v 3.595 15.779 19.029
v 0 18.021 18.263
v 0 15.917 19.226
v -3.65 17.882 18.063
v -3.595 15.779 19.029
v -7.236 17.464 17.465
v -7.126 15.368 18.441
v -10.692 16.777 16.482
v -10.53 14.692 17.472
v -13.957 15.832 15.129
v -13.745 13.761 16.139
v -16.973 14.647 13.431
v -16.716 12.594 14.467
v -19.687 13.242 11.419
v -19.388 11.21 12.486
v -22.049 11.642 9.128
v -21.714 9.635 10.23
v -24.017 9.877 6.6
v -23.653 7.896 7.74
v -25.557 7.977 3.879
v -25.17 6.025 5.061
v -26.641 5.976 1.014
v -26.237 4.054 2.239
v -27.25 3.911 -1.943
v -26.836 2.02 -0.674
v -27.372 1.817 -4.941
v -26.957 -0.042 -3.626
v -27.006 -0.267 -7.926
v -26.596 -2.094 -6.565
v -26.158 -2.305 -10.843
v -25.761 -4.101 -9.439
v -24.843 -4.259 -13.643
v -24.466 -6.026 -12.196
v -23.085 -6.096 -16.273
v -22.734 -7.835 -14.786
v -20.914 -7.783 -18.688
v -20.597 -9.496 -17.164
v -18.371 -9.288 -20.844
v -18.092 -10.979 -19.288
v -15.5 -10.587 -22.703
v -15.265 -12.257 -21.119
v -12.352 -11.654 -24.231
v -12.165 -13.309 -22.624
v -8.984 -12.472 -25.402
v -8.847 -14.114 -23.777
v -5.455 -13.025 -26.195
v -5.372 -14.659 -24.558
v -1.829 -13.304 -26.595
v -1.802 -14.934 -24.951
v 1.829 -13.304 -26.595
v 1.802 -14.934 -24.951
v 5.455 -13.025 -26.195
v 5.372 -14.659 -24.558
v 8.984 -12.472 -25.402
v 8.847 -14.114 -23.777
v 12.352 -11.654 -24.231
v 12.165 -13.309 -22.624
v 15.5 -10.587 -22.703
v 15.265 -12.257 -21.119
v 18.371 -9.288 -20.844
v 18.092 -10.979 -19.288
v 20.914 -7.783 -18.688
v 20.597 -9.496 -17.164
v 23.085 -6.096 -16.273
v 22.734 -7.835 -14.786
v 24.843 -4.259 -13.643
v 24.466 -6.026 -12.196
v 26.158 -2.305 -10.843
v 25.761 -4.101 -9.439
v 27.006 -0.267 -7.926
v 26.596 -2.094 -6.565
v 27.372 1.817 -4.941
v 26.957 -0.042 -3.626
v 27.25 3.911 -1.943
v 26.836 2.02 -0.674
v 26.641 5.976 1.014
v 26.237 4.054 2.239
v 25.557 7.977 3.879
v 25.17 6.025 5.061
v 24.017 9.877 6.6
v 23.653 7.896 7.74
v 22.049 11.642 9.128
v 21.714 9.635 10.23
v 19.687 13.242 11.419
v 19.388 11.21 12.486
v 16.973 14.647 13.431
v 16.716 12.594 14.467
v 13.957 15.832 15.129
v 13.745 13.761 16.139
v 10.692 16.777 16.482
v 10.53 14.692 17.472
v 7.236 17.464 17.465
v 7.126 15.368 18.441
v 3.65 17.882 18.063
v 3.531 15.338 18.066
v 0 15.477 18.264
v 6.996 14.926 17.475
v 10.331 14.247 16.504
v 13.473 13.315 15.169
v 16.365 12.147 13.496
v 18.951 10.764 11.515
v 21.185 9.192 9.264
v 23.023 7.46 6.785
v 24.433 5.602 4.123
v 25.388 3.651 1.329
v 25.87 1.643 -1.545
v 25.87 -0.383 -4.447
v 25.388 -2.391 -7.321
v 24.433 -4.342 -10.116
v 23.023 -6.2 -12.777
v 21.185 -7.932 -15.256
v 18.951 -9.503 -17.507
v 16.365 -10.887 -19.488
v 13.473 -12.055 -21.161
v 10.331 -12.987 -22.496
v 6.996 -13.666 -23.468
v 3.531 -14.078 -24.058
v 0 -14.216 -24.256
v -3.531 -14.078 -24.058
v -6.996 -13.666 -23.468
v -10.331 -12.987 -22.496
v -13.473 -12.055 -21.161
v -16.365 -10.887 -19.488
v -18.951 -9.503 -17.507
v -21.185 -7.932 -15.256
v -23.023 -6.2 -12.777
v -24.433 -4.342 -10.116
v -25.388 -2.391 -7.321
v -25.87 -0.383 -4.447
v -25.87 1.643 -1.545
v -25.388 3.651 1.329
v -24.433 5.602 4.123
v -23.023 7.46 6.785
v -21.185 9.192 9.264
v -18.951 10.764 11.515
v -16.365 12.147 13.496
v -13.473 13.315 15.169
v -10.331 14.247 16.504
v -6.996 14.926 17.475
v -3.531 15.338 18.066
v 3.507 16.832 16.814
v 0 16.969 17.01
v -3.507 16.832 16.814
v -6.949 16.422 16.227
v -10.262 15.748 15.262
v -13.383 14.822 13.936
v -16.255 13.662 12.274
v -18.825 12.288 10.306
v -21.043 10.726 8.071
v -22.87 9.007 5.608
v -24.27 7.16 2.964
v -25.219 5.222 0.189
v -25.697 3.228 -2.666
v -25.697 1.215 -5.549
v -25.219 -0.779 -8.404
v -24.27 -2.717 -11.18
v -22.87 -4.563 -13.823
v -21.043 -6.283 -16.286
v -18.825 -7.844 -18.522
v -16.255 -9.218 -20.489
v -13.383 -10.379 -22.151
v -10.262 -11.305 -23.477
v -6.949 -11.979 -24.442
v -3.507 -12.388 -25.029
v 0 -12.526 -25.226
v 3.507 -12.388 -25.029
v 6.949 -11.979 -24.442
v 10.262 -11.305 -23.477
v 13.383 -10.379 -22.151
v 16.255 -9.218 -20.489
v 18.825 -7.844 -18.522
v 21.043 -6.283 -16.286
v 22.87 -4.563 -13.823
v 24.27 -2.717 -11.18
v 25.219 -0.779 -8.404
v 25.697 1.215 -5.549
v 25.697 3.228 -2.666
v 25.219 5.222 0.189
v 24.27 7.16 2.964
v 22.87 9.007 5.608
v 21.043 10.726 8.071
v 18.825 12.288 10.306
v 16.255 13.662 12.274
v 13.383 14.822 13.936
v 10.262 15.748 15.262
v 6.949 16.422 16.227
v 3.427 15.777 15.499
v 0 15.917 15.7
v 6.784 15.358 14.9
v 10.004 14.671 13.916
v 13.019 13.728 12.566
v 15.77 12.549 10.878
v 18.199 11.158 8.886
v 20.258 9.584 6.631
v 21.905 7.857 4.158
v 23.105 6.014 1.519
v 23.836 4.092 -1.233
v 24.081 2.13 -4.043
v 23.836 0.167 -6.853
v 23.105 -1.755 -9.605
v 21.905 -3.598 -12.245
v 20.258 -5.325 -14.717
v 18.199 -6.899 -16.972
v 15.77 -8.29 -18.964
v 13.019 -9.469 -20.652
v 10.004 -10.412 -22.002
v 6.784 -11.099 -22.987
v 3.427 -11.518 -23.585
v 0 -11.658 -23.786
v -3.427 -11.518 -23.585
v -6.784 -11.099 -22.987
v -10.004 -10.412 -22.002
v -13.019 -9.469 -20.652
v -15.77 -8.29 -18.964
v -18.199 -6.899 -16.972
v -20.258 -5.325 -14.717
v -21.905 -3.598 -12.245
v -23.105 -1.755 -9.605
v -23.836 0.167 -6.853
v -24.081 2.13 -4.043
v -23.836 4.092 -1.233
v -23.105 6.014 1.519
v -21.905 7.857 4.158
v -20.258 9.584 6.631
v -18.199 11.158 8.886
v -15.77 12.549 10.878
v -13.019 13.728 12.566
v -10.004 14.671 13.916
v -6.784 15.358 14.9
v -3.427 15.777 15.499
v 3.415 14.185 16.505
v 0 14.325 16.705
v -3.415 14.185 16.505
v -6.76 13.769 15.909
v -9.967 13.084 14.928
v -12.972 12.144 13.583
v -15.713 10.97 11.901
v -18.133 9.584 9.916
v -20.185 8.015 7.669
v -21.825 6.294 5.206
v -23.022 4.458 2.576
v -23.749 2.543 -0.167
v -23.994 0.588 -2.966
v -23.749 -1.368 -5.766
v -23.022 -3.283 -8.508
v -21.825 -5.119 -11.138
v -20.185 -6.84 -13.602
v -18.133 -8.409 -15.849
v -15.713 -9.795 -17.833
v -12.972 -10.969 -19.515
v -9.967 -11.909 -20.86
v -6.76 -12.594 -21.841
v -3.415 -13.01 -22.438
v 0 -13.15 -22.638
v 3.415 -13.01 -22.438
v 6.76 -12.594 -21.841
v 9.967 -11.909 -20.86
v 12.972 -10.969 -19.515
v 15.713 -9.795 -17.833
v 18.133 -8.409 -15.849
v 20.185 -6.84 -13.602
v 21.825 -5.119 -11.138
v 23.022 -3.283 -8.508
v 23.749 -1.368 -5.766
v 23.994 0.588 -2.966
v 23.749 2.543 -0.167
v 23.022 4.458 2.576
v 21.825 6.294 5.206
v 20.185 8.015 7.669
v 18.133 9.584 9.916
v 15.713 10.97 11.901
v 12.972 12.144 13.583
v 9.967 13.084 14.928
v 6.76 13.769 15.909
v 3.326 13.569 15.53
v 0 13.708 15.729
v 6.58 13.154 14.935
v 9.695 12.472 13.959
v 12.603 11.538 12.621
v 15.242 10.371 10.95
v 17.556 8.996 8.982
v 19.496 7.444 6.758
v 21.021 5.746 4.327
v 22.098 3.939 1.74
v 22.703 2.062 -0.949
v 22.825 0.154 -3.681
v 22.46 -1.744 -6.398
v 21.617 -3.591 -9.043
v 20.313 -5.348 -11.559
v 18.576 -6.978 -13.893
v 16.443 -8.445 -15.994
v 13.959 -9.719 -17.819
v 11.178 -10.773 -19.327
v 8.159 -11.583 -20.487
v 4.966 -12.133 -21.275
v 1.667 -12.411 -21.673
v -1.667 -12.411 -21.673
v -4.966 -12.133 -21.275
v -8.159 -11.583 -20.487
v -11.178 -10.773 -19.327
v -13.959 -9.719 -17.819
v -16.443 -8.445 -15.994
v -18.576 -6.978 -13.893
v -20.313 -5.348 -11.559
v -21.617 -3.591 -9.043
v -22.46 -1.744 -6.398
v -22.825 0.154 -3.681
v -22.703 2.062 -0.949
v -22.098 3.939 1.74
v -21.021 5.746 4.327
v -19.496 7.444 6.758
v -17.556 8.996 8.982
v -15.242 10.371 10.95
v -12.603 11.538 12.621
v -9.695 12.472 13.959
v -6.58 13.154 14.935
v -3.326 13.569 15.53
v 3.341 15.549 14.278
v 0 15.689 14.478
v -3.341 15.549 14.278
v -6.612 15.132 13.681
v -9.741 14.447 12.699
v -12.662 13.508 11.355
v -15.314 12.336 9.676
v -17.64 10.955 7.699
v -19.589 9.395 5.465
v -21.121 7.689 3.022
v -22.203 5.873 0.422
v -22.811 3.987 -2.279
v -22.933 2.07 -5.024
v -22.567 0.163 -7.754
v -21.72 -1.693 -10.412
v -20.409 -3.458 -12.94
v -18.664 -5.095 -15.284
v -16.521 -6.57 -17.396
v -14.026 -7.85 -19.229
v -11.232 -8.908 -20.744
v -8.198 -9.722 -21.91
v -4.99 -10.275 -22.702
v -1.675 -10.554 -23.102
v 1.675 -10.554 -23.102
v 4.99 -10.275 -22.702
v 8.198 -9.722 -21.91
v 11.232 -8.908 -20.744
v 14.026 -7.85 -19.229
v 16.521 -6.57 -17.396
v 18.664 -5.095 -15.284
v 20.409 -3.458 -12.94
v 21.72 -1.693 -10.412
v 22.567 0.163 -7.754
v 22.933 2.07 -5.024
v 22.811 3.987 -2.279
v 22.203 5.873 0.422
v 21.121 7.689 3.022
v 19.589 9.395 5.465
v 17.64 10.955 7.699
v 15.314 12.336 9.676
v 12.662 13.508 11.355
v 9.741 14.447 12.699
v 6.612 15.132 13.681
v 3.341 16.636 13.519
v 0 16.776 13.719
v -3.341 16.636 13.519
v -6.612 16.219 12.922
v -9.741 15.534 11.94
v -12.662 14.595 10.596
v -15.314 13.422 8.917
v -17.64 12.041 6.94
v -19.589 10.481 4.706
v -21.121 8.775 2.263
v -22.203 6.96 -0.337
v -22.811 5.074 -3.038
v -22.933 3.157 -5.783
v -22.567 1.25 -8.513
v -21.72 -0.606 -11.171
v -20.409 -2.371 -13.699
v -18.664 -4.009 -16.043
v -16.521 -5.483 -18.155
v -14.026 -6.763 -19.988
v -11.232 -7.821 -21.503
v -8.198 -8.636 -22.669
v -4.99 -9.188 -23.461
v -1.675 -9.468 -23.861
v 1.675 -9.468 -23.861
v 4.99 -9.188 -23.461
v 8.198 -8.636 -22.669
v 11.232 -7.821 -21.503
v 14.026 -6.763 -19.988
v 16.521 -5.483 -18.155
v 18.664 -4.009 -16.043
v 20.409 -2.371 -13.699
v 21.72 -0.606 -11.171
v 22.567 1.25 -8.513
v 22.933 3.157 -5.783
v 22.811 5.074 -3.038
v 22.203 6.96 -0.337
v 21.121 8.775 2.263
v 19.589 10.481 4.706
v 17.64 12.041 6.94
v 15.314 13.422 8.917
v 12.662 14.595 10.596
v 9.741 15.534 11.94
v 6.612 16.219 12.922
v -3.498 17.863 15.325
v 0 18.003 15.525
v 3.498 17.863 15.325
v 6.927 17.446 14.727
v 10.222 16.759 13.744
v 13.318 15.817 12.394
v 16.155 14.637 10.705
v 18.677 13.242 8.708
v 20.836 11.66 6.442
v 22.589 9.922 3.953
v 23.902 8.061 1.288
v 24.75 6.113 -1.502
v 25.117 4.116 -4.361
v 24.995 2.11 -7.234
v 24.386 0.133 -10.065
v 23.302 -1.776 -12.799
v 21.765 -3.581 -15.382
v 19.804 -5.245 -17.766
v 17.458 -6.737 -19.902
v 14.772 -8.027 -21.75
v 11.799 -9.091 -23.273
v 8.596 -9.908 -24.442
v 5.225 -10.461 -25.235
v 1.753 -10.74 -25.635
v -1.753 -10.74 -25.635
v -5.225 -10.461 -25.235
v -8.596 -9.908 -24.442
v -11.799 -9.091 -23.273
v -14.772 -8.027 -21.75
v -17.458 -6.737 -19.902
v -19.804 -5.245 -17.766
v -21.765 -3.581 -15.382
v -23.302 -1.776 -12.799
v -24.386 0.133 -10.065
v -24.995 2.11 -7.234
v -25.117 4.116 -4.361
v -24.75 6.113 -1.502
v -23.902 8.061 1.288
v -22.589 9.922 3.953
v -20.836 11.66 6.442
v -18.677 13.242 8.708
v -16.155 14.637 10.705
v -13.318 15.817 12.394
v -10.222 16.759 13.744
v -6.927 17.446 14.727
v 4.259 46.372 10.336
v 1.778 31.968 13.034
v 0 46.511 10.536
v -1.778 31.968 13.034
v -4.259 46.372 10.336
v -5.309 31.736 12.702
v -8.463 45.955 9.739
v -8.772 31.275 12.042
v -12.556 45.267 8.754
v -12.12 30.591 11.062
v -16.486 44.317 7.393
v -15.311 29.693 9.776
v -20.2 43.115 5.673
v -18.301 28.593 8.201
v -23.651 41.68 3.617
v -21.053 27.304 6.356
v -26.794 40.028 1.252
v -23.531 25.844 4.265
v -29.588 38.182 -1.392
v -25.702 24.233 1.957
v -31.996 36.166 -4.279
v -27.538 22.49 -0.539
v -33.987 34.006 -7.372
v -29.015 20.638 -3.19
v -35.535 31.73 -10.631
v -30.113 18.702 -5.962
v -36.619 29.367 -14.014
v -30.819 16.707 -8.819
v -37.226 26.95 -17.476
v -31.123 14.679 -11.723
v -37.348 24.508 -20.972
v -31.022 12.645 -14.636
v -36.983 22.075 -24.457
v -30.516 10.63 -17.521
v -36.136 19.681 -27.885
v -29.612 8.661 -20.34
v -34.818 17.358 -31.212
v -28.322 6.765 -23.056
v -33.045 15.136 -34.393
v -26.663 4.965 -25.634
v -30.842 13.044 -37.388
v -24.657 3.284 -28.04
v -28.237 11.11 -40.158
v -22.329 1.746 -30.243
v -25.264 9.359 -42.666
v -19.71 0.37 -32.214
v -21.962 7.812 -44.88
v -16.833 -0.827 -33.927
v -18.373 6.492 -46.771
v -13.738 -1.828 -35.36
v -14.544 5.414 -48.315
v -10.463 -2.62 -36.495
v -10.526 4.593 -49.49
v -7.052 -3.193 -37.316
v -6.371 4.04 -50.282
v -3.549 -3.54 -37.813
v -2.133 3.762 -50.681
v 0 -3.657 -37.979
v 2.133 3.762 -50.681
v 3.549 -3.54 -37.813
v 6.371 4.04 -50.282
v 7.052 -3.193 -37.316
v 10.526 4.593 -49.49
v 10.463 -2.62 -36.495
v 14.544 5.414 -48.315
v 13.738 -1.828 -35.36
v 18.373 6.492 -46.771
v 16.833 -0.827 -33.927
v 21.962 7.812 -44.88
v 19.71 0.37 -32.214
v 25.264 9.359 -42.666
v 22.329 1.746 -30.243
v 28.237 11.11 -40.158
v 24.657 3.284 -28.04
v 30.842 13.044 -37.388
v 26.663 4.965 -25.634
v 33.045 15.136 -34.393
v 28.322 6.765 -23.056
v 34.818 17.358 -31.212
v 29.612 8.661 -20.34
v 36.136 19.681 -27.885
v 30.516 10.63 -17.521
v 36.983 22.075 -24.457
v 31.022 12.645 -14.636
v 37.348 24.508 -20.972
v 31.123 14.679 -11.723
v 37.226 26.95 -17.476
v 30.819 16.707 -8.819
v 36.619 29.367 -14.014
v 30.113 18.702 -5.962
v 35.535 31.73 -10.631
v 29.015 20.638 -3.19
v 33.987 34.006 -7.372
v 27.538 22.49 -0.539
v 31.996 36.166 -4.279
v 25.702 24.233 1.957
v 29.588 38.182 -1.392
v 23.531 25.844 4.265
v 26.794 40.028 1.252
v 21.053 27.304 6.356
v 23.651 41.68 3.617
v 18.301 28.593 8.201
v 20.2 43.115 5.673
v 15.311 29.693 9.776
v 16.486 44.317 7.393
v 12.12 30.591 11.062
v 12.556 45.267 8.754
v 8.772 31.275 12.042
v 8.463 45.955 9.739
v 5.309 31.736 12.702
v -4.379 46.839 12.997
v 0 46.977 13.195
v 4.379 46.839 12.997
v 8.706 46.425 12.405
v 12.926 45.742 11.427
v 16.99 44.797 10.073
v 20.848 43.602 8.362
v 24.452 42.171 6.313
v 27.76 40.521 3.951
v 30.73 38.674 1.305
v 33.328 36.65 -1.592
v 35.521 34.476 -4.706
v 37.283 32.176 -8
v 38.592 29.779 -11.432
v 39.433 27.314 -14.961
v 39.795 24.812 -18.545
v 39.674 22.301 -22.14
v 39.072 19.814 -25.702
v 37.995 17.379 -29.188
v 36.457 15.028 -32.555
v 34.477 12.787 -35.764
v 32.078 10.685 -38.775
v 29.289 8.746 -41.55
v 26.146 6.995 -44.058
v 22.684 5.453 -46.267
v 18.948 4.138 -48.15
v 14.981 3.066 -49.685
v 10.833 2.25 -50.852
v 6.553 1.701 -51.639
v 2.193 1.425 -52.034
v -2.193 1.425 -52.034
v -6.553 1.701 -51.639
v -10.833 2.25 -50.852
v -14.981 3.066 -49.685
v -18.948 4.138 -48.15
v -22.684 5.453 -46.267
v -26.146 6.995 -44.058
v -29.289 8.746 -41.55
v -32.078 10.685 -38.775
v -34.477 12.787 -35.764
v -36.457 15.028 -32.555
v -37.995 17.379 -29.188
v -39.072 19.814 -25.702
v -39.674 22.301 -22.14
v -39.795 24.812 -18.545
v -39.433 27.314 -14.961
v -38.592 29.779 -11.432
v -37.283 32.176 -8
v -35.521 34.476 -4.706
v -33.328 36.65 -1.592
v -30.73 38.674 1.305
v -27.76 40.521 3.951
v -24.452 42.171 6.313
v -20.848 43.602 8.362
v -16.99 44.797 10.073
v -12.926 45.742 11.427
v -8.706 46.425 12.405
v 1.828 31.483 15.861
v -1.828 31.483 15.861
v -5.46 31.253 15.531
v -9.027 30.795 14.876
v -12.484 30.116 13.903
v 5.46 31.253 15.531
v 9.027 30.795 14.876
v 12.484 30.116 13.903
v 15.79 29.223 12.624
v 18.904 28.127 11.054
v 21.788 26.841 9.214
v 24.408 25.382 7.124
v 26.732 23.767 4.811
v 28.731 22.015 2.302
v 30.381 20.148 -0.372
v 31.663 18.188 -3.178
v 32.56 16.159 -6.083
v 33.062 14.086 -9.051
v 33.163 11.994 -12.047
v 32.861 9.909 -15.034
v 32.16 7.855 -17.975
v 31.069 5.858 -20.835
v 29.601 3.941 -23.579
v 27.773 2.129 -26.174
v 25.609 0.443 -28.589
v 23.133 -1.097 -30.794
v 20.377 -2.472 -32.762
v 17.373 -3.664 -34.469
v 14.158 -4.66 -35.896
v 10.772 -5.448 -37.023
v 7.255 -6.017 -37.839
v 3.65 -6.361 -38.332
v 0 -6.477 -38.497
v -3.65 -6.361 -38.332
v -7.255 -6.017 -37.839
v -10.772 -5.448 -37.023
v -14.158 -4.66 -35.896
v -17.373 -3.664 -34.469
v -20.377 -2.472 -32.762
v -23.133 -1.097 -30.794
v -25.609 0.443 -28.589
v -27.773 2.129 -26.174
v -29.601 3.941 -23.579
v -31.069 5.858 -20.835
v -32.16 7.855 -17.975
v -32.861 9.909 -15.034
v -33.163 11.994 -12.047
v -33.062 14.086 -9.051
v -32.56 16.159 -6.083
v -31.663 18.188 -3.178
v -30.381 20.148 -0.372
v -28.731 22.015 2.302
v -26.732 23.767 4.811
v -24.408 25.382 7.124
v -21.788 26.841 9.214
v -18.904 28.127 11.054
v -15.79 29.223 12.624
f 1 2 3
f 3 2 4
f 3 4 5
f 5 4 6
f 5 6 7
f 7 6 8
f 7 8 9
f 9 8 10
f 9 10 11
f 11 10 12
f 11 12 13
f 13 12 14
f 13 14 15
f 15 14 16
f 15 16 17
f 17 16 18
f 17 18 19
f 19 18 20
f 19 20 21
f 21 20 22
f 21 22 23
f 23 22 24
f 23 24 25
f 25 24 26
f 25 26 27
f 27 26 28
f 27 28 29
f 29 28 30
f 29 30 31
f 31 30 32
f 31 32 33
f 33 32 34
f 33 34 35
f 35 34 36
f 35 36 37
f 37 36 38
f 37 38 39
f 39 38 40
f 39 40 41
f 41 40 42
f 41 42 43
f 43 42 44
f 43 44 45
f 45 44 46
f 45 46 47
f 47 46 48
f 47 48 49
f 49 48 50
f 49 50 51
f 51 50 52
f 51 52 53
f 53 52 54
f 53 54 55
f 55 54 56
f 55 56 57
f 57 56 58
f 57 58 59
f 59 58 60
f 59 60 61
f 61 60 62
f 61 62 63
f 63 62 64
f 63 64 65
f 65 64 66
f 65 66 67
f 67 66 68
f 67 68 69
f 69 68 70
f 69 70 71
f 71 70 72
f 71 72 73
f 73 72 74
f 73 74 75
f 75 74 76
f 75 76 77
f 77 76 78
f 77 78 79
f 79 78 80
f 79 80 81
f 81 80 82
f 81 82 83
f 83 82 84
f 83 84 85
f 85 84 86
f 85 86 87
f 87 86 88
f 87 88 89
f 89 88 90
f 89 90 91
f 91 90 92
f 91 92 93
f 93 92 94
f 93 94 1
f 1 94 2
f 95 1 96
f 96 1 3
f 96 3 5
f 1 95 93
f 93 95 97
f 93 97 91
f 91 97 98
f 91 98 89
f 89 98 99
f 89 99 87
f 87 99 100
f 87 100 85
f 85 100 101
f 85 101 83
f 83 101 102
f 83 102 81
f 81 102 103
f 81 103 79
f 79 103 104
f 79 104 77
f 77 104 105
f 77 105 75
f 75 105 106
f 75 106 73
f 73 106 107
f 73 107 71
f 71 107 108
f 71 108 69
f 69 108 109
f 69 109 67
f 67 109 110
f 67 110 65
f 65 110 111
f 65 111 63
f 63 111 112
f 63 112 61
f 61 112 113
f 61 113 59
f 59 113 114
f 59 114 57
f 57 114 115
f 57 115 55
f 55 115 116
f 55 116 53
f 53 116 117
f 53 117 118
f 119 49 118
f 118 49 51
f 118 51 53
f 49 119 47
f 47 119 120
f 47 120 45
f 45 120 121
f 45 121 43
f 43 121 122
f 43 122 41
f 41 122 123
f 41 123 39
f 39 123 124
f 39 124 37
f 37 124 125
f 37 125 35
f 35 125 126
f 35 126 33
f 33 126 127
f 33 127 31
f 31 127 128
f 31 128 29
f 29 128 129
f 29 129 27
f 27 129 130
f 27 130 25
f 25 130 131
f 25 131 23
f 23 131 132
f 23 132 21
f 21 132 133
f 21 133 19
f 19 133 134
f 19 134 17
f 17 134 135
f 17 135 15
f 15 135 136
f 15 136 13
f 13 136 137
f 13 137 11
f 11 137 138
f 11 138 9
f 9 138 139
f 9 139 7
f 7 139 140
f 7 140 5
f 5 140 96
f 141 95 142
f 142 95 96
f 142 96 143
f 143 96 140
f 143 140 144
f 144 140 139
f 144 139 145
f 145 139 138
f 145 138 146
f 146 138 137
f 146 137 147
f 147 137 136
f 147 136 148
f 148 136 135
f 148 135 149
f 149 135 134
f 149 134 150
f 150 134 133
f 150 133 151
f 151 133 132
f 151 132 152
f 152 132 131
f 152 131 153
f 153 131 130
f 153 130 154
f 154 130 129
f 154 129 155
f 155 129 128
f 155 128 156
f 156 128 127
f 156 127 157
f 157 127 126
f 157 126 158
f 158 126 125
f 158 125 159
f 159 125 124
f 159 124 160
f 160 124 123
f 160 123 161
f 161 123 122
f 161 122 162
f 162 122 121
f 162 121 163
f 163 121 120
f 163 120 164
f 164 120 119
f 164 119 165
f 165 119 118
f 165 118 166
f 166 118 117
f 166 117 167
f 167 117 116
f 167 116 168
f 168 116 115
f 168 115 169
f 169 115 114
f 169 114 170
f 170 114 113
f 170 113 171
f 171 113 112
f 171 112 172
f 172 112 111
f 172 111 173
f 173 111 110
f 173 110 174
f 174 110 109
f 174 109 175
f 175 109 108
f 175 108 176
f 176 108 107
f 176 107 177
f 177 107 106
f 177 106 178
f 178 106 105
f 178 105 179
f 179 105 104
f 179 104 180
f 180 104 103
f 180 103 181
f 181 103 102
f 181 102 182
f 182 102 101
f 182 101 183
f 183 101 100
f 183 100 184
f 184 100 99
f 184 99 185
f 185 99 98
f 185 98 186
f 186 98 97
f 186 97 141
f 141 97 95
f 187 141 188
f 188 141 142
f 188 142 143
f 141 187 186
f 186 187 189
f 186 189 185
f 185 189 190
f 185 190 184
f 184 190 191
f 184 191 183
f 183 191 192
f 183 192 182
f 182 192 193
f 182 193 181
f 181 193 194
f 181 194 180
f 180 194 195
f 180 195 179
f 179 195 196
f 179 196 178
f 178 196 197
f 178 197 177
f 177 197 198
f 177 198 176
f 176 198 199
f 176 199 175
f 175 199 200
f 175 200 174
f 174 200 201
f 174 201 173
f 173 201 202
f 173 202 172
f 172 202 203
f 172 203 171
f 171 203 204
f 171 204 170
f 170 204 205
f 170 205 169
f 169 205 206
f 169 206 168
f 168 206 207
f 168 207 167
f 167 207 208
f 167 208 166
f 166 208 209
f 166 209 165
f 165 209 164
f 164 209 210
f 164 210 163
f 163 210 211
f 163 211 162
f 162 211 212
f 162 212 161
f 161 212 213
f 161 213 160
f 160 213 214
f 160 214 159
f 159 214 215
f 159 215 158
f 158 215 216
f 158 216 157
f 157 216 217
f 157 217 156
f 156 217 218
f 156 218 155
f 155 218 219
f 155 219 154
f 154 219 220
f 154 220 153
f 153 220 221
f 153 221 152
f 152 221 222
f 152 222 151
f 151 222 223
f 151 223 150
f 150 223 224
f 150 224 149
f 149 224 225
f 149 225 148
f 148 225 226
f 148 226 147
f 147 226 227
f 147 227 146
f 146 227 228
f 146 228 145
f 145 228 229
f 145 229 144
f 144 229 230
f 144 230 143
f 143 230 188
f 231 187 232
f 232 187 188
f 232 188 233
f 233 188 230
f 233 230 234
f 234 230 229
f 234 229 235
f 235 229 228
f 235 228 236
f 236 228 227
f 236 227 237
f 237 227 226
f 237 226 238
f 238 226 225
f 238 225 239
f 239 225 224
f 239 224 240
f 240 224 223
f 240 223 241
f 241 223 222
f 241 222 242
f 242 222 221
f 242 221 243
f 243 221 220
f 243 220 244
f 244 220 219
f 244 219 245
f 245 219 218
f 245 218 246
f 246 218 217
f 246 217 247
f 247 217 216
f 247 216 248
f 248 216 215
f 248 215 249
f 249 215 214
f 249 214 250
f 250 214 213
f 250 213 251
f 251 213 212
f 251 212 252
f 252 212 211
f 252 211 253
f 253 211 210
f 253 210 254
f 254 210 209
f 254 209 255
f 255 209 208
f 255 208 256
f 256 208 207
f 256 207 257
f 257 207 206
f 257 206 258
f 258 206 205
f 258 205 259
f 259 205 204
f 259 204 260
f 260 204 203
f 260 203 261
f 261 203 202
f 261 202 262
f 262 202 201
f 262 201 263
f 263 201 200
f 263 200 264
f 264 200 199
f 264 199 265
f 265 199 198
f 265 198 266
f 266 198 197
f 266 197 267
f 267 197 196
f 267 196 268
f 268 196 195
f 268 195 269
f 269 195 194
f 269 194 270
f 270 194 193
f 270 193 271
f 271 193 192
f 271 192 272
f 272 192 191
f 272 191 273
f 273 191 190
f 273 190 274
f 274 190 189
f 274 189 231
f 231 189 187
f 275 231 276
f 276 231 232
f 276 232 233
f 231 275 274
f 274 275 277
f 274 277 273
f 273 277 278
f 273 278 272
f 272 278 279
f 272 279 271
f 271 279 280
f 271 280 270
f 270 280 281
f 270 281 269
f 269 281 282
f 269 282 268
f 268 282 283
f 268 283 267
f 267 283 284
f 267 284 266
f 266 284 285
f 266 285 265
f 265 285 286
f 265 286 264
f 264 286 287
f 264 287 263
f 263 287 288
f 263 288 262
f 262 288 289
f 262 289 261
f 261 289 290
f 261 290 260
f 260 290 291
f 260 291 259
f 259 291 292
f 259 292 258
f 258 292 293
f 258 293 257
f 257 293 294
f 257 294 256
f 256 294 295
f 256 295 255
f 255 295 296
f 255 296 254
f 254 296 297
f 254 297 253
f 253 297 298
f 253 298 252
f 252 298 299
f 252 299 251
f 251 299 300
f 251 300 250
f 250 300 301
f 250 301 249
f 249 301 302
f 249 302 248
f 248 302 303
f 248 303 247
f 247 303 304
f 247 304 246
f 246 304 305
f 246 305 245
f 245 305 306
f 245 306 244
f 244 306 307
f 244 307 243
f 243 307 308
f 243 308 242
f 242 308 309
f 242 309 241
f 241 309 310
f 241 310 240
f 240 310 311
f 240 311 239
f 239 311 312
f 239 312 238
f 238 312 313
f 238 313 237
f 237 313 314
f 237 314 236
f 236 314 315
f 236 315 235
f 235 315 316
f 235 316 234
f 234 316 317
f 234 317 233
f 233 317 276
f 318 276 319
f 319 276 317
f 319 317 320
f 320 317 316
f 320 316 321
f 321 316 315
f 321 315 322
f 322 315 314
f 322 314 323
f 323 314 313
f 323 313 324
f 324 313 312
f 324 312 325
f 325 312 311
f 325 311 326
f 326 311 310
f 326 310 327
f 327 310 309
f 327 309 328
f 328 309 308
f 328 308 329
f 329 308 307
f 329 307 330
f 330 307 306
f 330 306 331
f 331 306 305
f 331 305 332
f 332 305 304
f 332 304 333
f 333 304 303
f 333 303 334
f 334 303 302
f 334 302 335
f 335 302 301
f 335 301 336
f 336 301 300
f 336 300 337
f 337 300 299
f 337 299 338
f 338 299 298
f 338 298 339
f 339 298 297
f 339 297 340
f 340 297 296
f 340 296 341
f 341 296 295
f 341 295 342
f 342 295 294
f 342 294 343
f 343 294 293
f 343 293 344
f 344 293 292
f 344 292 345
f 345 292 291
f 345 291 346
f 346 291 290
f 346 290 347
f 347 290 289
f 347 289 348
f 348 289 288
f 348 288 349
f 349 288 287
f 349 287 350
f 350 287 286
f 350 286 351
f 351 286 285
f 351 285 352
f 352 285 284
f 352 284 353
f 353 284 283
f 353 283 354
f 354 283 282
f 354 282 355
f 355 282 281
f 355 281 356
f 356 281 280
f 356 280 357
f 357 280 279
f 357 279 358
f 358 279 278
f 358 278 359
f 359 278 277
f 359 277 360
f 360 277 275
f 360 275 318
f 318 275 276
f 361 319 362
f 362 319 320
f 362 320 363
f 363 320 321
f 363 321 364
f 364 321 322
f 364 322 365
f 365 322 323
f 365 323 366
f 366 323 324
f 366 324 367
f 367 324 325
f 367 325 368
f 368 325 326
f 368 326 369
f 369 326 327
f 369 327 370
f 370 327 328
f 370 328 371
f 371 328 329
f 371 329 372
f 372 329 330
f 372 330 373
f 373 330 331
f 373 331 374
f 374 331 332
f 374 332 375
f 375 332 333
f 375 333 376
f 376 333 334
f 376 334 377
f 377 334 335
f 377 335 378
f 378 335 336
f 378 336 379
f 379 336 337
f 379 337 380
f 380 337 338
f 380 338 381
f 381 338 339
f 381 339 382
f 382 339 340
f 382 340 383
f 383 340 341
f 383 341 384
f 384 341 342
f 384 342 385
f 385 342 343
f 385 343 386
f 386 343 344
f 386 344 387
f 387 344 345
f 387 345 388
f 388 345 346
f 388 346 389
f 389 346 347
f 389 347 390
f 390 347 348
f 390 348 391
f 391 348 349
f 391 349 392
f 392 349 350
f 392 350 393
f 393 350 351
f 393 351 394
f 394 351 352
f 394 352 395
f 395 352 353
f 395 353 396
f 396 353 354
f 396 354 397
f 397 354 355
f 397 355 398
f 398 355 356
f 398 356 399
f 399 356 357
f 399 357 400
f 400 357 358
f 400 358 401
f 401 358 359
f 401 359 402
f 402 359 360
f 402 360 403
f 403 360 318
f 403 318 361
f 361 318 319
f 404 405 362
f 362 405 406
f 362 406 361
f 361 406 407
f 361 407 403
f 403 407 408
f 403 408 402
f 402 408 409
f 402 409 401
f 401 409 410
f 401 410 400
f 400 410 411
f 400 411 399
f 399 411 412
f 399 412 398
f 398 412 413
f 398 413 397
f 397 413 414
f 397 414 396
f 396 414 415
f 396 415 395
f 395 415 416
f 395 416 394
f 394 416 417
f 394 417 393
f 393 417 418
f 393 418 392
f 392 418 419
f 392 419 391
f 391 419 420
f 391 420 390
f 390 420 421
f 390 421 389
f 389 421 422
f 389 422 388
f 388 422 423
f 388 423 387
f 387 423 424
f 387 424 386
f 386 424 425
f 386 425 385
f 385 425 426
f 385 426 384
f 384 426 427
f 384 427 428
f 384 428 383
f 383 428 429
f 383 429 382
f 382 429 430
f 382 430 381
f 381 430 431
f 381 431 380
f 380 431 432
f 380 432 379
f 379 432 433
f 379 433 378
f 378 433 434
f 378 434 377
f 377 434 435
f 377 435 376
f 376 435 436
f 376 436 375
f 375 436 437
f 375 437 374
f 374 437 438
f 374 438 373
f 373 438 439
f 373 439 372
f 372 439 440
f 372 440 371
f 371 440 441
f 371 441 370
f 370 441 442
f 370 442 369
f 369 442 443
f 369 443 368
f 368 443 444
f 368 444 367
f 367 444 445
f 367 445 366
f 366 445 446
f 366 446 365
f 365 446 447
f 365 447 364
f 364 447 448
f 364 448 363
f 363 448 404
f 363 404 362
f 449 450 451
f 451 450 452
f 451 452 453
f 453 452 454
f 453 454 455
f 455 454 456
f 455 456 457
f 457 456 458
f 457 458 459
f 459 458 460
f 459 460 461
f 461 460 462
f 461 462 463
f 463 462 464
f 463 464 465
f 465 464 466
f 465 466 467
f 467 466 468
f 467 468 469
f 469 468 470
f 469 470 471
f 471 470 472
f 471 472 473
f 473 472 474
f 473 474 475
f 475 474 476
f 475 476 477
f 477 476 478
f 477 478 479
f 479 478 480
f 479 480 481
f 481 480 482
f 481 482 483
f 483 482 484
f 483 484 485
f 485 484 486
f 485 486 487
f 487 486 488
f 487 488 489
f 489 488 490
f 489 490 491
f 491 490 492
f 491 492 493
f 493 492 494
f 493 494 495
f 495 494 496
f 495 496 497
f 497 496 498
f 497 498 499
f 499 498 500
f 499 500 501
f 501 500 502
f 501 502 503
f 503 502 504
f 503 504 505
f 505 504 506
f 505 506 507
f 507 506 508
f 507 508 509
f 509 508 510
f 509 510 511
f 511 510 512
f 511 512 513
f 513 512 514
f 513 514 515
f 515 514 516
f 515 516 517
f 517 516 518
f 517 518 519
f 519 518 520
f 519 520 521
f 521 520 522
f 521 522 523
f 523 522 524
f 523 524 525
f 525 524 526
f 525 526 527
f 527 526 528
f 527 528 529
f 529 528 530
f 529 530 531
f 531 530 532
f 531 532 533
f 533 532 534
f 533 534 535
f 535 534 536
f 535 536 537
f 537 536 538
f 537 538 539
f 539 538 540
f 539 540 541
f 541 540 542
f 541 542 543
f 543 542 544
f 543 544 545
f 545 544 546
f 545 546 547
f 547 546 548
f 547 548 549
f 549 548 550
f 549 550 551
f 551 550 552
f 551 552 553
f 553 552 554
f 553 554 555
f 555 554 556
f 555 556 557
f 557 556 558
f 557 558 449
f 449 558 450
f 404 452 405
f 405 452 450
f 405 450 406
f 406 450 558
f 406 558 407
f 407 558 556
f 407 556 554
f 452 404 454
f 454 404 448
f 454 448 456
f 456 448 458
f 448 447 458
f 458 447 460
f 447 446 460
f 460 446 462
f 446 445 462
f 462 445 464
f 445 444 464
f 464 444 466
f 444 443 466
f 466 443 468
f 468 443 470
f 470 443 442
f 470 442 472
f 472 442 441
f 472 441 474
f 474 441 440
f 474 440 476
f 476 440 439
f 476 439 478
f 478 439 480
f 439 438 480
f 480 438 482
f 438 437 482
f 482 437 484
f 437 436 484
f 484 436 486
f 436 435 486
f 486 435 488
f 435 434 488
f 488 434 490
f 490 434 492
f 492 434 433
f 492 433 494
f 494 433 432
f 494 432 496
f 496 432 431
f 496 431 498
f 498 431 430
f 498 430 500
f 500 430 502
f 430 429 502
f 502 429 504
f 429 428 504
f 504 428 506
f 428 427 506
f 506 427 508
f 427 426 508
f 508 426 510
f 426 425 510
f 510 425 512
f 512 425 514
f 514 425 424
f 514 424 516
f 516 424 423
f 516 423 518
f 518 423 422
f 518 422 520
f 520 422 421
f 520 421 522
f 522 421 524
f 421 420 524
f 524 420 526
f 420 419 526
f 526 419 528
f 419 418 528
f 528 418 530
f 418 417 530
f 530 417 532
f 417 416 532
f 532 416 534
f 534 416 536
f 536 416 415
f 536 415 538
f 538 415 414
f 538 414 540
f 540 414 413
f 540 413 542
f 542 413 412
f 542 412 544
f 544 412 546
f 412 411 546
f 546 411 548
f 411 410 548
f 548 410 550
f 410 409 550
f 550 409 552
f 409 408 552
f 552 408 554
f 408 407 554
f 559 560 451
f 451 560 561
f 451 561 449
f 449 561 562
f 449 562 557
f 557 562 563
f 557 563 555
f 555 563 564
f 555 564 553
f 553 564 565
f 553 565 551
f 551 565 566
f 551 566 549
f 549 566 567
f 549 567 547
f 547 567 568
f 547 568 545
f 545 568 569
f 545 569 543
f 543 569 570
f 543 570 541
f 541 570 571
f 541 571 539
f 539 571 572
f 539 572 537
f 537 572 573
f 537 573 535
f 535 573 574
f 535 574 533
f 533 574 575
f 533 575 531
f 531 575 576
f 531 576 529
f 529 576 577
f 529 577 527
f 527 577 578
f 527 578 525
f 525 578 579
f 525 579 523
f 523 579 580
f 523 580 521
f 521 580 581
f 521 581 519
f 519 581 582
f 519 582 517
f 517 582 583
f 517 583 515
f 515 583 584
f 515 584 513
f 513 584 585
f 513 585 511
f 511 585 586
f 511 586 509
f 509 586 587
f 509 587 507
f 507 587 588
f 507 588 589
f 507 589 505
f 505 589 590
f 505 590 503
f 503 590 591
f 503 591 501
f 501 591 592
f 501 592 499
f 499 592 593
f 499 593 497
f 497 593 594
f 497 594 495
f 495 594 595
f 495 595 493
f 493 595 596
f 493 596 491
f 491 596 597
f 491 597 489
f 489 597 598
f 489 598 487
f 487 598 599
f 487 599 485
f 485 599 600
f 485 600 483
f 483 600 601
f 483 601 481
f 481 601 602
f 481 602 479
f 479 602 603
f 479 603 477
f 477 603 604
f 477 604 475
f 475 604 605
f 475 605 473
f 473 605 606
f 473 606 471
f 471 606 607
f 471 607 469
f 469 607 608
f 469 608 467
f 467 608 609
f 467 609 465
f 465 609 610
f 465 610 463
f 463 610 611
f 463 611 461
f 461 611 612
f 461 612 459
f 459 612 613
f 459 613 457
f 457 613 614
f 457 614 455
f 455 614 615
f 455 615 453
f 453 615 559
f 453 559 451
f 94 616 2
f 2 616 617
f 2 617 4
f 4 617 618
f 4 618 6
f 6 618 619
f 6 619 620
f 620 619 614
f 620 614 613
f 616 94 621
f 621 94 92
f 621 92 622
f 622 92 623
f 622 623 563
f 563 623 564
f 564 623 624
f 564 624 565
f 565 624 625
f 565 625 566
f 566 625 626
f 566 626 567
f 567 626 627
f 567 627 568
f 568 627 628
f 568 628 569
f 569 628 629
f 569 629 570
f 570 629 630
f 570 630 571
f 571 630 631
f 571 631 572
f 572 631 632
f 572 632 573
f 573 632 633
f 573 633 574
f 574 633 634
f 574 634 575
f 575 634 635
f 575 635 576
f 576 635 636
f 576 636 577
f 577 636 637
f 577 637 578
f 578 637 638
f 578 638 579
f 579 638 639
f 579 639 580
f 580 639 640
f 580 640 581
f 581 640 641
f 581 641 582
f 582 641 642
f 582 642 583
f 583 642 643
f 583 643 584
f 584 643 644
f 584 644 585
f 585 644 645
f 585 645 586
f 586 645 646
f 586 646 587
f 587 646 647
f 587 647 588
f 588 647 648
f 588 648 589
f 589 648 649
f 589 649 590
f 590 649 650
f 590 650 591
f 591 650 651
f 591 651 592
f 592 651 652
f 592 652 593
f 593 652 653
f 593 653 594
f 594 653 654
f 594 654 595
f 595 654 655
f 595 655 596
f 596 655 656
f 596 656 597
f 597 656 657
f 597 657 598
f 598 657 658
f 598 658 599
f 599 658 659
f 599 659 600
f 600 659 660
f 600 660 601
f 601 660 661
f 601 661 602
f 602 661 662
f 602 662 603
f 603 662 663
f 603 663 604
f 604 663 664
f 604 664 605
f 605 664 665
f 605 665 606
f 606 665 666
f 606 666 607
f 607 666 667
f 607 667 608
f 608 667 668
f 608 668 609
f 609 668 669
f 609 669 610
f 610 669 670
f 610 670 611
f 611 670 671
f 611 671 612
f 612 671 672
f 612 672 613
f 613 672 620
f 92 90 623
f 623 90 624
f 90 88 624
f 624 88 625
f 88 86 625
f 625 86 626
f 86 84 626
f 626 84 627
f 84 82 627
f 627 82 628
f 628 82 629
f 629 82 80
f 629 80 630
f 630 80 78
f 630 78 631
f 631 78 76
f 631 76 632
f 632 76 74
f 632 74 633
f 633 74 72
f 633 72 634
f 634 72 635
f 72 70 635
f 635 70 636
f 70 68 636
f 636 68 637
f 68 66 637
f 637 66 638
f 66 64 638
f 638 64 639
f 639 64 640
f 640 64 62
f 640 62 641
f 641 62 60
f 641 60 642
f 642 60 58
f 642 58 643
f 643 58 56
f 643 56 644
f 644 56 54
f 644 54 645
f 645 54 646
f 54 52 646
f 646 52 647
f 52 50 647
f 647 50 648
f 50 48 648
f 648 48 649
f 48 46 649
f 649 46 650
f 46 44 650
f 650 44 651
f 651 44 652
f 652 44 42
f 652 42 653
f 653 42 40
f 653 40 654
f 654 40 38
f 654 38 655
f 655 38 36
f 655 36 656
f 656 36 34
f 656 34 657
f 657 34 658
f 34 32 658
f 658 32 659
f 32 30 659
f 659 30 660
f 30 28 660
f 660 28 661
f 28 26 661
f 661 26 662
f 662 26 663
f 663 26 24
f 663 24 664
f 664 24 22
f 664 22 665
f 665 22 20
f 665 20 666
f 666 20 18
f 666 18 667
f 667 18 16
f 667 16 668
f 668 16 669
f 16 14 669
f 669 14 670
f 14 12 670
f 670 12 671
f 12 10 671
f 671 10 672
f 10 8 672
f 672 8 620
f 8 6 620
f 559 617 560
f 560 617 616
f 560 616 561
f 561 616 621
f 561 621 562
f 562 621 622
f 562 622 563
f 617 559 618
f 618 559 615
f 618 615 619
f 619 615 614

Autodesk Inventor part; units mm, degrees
ref_plane "YZ Plane" through (0, 0, 0) normal (1, 0, 0) x (0, 1, 0)
ref_plane "XZ Plane" through (0, 0, 0) normal (0, 1, 0) x (-1, 0, 0)
ref_plane "XY Plane" through (0, 0, 0) normal (0, 0, 1) x (1, 0, 0)
sketch "Sketch68" plane through (0, 0, 0) normal (1, 0, 0) x (0, 1, 0)
  line L0 (1, 4.6737) -> (23, 4.6737) construction
  line L1 (7.0021, -2.9903) -> (-7.0029, -0.0135)
  line L2 (7.2385, 26.8729) -> (5.7713, 27.1847)
  line L3 (2.4565, 4.3755) -> (1, 4.6737)
  line L4 (5.7713, 27.1847) -> (1, 4.6737)
  line L5 (7.2385, 26.8729) -> (2.4565, 4.3755)
  point P0 (0, 0)
  point P1 (2.225, 5.1772)
sketch "Sketch184" plane through (0, 0, 0) normal (1, 0, 0) x (0, 1, 0)
  arc A0 (-3.5, -3.0972) -> (0, -1.6204) centre (-4.281, 3.6397) ccw
  arc A1 (0, -1.6204) -> (2.2822, 2) centre (-4.3557, 3.6547) ccw
  arc A2 (2.2822, 2) -> (2.459, 4.3851) centre (-8.8285, 4.0231) ccw
  arc A3 (2.459, 4.3851) -> (2.3883, 6) centre (-72.7121, 1.9029) ccw
  line L0 (-3.5, -3.0972) -> (-3.5, -3.6807) projected
  arc A4 (2.3883, 6) -> (-3.5, -3.0972) centre (8.6947, -4.5362) ccw
  point P0 (0, 0)
sketch "Sketch213" plane through (0, 0, 0) normal (1, 0, 0) x (0, 1, 0)
  line L0 (13.3414, -11.8728) -> (-10.8201, 5)
  line L1 (46.9769, 13.1952) -> (18.0214, 18.2633)
  line L2 (-13.3385, -26.1425) -> (0.7357, -50.4491)
  line L3 (0.7357, -50.4491) -> (1.9473, -49.7476)
  line L4 (1.9473, -49.7476) -> (-11.7207, -26.1425)
  line L5 (-11.7207, -26.1425) -> (-10, -24)
  line L6 (46.5114, 10.5356) -> (18.0034, 15.5254)
  line L7 (18.0034, 15.5254) -> (16.7759, 13.7195)
  line L8 (16.7759, 13.7195) -> (15.6891, 14.4784)
  line L9 (46.9769, 13.1952) -> (46.5114, 10.5356)
  line L10 (-13.3385, -26.1425) -> (-16, -24)
  line L11 (-16, -24) -> (-15.3672, -23.2139)
  line L12 (-15.3672, -23.2139) -> (-13.3385, -24.8471)
  line L13 (-13.3385, -24.8471) -> (-12.3402, -23.607)
  line L14 (-12.3402, -23.607) -> (-14.3528, -21.9897)
  line L15 (-14.3528, -21.9897) -> (-13.6273, -21.0868)
  line L16 (-10, -24) -> (-13.6273, -21.0868)
  line L17 (15.6891, 14.4784) -> (13.7085, 15.7292)
  line L18 (13.7085, 15.7292) -> (14.325, 16.7055)
  line L19 (14.325, 16.7055) -> (15.9169, 15.7001)
  line L20 (18.0214, 18.2633) -> (15.9169, 19.2263)
  line L21 (15.9169, 15.7001) -> (16.9692, 17.0103)
  line L22 (16.9692, 17.0103) -> (15.4765, 18.2639)
  line L23 (15.4765, 18.2639) -> (15.9169, 19.2263)
  point P0 (0, 0)
  point P1 (3.3399, -2.2736)
  point P2 (-1.2043, -8.7808)
  dimension "d600" = 1.4
  dimension "d601" = 2.7
revolve "Revolution5" add sketch "Sketch213" angle 360 about axis through (0, 13.3414, -11.8728) along (0, -0.8199, 0.5725) contours L9 L6 L7 L8 L17 L18 L19 L21 L22 L23 L20 L1
properties part number "A1V1M2_dropArm_superWOK_tall_interface_FULL_360"
